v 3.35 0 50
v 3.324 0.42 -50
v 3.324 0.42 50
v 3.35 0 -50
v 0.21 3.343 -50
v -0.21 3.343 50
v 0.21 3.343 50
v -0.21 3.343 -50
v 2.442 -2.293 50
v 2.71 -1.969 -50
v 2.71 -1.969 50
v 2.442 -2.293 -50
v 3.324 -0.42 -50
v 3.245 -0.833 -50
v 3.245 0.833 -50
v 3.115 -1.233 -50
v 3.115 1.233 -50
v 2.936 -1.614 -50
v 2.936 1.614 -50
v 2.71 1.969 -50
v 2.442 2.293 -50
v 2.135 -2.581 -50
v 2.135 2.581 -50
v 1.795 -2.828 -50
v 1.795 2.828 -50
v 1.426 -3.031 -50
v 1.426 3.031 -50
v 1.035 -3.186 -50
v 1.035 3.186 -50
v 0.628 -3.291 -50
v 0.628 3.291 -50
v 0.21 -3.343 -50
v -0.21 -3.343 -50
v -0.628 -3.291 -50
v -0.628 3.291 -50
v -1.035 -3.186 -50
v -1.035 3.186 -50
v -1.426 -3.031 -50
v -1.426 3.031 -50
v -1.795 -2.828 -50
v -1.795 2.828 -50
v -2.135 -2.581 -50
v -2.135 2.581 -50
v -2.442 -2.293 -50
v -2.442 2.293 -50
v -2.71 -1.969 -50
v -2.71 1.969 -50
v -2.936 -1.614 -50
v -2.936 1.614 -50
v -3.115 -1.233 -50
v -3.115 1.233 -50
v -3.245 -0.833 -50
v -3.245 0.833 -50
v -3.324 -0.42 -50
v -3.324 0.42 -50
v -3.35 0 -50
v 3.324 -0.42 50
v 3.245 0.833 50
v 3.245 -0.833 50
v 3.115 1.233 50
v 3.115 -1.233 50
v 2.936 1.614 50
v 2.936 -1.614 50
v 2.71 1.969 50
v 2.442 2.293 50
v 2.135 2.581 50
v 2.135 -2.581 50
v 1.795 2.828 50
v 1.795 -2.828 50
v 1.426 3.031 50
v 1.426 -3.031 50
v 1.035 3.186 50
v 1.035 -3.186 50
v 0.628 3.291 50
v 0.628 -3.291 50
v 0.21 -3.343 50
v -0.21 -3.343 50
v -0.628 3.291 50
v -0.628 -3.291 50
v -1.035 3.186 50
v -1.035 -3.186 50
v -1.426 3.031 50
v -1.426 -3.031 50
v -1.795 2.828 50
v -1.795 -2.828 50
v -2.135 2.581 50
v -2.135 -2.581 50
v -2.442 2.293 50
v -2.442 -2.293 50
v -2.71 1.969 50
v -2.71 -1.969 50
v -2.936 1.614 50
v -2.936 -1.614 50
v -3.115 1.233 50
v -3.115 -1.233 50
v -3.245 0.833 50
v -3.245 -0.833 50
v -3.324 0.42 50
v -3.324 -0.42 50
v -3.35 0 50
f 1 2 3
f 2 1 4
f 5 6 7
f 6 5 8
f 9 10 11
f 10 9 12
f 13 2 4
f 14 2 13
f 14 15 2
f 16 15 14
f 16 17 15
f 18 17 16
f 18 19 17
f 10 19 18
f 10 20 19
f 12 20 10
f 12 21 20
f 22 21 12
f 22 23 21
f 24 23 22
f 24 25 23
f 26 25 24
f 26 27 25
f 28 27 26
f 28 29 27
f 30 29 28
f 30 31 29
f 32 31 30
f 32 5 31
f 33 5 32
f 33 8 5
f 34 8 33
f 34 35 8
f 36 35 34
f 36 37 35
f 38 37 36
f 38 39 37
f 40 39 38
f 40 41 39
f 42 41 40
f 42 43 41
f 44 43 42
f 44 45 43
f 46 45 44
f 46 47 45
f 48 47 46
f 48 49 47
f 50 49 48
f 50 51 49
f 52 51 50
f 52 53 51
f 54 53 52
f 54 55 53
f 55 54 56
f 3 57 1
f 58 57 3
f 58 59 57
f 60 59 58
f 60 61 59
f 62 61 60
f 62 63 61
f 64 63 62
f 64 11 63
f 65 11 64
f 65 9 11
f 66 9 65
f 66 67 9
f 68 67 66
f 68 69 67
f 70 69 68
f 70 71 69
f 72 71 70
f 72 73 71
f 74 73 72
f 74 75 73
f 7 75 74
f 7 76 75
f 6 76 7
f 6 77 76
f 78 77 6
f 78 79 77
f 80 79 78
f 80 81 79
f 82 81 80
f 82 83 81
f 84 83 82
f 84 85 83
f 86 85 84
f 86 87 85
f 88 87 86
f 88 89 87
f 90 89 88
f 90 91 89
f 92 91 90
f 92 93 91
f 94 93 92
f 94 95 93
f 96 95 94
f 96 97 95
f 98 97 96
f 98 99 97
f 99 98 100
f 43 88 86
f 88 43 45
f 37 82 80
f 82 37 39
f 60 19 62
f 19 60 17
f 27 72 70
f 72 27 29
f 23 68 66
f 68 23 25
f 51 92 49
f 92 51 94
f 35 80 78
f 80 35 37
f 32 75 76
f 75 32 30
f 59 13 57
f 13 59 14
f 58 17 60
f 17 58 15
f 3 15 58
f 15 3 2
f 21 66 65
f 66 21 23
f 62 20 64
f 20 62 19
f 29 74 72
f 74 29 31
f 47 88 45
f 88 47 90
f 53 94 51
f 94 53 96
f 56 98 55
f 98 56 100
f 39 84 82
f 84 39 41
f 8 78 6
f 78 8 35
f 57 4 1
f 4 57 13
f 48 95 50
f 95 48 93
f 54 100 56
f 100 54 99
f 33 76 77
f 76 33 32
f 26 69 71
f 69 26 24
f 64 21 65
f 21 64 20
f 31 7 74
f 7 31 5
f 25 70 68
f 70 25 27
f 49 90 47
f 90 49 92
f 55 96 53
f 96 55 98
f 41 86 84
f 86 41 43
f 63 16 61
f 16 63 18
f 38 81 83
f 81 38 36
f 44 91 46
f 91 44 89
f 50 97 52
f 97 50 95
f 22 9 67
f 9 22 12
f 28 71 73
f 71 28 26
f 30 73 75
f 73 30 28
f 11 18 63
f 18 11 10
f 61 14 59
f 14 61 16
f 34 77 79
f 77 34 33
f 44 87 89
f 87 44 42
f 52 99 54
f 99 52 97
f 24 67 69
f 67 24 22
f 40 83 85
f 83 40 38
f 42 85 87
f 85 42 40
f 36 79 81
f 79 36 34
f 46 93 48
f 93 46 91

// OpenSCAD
$fn = 50;


difference() {
	union() {
		translate(v = [0, 0, -50.0000000000]) {
			cylinder(h = 100, r = 3.3500000000);
		}
	}
	union() {
		translate(v = [0, 0, -100.0000000000]) {
			cylinder(h = 200, r = 0);
		}
	}
}
